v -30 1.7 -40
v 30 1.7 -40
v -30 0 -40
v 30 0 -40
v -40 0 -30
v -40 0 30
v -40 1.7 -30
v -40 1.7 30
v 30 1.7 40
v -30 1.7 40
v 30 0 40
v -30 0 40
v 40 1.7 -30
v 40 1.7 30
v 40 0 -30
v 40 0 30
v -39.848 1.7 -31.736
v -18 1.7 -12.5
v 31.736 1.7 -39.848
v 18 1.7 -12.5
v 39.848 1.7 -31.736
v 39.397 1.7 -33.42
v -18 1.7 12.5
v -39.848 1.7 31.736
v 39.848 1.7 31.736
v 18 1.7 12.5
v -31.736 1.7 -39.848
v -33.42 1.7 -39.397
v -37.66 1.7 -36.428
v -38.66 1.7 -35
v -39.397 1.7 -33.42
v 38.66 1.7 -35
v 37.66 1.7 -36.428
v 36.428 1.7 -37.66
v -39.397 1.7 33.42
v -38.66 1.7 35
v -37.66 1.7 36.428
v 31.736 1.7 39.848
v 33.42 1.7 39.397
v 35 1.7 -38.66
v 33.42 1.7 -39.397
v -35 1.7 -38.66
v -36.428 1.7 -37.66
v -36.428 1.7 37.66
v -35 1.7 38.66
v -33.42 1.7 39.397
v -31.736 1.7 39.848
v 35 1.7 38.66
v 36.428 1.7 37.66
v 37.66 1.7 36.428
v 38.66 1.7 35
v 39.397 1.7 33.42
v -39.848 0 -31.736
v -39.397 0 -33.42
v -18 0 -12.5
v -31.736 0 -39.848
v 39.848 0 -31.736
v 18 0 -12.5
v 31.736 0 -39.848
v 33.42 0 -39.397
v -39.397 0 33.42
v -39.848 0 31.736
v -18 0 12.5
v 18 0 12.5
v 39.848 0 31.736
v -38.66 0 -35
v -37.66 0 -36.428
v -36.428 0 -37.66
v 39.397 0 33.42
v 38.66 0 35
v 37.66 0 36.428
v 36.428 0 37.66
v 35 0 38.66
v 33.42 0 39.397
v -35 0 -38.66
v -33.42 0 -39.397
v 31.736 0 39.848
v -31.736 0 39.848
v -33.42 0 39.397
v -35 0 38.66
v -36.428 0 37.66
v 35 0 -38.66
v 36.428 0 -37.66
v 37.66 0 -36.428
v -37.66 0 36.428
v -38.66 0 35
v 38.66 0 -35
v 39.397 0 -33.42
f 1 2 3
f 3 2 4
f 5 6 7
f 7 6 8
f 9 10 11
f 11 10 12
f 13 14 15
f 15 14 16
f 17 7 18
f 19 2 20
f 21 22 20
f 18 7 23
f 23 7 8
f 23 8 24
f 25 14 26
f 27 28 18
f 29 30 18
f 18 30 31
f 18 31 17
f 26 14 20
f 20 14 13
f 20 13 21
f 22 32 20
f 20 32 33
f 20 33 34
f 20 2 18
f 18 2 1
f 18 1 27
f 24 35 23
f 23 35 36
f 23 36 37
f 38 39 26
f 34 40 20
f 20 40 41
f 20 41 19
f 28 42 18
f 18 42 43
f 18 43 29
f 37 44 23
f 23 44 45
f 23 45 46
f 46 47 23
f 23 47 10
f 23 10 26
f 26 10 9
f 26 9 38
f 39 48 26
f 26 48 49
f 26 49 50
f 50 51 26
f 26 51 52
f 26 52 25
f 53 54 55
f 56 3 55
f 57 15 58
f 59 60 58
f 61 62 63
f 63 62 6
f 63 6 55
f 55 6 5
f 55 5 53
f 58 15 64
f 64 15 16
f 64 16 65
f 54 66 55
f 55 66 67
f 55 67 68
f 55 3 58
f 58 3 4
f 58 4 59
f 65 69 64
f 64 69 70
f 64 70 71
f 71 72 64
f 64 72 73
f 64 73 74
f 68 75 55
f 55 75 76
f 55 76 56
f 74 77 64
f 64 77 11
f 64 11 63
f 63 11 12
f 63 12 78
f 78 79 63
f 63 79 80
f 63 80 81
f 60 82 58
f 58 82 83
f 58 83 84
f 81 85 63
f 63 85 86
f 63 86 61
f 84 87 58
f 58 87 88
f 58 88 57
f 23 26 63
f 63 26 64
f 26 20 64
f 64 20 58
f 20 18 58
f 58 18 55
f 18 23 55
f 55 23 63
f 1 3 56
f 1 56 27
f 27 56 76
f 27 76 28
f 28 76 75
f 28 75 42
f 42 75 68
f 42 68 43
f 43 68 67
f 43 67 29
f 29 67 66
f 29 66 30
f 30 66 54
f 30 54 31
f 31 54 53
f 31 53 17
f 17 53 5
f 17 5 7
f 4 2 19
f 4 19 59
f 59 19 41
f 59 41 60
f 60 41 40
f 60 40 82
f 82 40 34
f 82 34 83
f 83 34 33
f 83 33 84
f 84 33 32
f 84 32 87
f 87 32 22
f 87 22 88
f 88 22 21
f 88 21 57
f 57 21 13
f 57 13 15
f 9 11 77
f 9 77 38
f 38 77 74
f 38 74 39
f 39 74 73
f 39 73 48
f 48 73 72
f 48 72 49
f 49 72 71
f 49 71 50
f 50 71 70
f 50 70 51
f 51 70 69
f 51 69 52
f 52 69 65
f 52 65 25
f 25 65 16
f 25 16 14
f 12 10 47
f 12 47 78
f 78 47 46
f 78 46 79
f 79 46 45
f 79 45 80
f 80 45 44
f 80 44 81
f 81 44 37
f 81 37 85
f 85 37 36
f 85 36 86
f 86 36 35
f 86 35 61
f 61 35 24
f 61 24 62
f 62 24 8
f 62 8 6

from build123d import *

# Parameters (mm, degrees)
ESQUISSE1_W        = 80
ESQUISSE1_H        = 80
ESQUISSE1_W_2      = 36
ESQUISSE1_H_2      = 25
BOSS_EXTRU_1_DEPTH = 1.7
CONG_1_R           = 10


with BuildPart() as part:
    # Esquisse1 → Boss.-Extru.1 (new body)
    with BuildSketch(Plane(origin=(0, 0, 0), x_dir=(1, 0, 0), z_dir=(0, 1, 0))):
        Rectangle(ESQUISSE1_W, ESQUISSE1_H)
        Rectangle(ESQUISSE1_W_2, ESQUISSE1_H_2, mode=Mode.SUBTRACT)
    extrude(amount=BOSS_EXTRU_1_DEPTH)

    # Congé1
    cong_1_edges = [part.edges().sort_by_distance(p)[0] for p in [
        (-40, 0.85, -40),
        (-40, 0.85, 40),
        (40, 0.85, 40),
        (40, 0.85, -40),
    ]]
    fillet(cong_1_edges, radius=CONG_1_R)


solid = part.part
